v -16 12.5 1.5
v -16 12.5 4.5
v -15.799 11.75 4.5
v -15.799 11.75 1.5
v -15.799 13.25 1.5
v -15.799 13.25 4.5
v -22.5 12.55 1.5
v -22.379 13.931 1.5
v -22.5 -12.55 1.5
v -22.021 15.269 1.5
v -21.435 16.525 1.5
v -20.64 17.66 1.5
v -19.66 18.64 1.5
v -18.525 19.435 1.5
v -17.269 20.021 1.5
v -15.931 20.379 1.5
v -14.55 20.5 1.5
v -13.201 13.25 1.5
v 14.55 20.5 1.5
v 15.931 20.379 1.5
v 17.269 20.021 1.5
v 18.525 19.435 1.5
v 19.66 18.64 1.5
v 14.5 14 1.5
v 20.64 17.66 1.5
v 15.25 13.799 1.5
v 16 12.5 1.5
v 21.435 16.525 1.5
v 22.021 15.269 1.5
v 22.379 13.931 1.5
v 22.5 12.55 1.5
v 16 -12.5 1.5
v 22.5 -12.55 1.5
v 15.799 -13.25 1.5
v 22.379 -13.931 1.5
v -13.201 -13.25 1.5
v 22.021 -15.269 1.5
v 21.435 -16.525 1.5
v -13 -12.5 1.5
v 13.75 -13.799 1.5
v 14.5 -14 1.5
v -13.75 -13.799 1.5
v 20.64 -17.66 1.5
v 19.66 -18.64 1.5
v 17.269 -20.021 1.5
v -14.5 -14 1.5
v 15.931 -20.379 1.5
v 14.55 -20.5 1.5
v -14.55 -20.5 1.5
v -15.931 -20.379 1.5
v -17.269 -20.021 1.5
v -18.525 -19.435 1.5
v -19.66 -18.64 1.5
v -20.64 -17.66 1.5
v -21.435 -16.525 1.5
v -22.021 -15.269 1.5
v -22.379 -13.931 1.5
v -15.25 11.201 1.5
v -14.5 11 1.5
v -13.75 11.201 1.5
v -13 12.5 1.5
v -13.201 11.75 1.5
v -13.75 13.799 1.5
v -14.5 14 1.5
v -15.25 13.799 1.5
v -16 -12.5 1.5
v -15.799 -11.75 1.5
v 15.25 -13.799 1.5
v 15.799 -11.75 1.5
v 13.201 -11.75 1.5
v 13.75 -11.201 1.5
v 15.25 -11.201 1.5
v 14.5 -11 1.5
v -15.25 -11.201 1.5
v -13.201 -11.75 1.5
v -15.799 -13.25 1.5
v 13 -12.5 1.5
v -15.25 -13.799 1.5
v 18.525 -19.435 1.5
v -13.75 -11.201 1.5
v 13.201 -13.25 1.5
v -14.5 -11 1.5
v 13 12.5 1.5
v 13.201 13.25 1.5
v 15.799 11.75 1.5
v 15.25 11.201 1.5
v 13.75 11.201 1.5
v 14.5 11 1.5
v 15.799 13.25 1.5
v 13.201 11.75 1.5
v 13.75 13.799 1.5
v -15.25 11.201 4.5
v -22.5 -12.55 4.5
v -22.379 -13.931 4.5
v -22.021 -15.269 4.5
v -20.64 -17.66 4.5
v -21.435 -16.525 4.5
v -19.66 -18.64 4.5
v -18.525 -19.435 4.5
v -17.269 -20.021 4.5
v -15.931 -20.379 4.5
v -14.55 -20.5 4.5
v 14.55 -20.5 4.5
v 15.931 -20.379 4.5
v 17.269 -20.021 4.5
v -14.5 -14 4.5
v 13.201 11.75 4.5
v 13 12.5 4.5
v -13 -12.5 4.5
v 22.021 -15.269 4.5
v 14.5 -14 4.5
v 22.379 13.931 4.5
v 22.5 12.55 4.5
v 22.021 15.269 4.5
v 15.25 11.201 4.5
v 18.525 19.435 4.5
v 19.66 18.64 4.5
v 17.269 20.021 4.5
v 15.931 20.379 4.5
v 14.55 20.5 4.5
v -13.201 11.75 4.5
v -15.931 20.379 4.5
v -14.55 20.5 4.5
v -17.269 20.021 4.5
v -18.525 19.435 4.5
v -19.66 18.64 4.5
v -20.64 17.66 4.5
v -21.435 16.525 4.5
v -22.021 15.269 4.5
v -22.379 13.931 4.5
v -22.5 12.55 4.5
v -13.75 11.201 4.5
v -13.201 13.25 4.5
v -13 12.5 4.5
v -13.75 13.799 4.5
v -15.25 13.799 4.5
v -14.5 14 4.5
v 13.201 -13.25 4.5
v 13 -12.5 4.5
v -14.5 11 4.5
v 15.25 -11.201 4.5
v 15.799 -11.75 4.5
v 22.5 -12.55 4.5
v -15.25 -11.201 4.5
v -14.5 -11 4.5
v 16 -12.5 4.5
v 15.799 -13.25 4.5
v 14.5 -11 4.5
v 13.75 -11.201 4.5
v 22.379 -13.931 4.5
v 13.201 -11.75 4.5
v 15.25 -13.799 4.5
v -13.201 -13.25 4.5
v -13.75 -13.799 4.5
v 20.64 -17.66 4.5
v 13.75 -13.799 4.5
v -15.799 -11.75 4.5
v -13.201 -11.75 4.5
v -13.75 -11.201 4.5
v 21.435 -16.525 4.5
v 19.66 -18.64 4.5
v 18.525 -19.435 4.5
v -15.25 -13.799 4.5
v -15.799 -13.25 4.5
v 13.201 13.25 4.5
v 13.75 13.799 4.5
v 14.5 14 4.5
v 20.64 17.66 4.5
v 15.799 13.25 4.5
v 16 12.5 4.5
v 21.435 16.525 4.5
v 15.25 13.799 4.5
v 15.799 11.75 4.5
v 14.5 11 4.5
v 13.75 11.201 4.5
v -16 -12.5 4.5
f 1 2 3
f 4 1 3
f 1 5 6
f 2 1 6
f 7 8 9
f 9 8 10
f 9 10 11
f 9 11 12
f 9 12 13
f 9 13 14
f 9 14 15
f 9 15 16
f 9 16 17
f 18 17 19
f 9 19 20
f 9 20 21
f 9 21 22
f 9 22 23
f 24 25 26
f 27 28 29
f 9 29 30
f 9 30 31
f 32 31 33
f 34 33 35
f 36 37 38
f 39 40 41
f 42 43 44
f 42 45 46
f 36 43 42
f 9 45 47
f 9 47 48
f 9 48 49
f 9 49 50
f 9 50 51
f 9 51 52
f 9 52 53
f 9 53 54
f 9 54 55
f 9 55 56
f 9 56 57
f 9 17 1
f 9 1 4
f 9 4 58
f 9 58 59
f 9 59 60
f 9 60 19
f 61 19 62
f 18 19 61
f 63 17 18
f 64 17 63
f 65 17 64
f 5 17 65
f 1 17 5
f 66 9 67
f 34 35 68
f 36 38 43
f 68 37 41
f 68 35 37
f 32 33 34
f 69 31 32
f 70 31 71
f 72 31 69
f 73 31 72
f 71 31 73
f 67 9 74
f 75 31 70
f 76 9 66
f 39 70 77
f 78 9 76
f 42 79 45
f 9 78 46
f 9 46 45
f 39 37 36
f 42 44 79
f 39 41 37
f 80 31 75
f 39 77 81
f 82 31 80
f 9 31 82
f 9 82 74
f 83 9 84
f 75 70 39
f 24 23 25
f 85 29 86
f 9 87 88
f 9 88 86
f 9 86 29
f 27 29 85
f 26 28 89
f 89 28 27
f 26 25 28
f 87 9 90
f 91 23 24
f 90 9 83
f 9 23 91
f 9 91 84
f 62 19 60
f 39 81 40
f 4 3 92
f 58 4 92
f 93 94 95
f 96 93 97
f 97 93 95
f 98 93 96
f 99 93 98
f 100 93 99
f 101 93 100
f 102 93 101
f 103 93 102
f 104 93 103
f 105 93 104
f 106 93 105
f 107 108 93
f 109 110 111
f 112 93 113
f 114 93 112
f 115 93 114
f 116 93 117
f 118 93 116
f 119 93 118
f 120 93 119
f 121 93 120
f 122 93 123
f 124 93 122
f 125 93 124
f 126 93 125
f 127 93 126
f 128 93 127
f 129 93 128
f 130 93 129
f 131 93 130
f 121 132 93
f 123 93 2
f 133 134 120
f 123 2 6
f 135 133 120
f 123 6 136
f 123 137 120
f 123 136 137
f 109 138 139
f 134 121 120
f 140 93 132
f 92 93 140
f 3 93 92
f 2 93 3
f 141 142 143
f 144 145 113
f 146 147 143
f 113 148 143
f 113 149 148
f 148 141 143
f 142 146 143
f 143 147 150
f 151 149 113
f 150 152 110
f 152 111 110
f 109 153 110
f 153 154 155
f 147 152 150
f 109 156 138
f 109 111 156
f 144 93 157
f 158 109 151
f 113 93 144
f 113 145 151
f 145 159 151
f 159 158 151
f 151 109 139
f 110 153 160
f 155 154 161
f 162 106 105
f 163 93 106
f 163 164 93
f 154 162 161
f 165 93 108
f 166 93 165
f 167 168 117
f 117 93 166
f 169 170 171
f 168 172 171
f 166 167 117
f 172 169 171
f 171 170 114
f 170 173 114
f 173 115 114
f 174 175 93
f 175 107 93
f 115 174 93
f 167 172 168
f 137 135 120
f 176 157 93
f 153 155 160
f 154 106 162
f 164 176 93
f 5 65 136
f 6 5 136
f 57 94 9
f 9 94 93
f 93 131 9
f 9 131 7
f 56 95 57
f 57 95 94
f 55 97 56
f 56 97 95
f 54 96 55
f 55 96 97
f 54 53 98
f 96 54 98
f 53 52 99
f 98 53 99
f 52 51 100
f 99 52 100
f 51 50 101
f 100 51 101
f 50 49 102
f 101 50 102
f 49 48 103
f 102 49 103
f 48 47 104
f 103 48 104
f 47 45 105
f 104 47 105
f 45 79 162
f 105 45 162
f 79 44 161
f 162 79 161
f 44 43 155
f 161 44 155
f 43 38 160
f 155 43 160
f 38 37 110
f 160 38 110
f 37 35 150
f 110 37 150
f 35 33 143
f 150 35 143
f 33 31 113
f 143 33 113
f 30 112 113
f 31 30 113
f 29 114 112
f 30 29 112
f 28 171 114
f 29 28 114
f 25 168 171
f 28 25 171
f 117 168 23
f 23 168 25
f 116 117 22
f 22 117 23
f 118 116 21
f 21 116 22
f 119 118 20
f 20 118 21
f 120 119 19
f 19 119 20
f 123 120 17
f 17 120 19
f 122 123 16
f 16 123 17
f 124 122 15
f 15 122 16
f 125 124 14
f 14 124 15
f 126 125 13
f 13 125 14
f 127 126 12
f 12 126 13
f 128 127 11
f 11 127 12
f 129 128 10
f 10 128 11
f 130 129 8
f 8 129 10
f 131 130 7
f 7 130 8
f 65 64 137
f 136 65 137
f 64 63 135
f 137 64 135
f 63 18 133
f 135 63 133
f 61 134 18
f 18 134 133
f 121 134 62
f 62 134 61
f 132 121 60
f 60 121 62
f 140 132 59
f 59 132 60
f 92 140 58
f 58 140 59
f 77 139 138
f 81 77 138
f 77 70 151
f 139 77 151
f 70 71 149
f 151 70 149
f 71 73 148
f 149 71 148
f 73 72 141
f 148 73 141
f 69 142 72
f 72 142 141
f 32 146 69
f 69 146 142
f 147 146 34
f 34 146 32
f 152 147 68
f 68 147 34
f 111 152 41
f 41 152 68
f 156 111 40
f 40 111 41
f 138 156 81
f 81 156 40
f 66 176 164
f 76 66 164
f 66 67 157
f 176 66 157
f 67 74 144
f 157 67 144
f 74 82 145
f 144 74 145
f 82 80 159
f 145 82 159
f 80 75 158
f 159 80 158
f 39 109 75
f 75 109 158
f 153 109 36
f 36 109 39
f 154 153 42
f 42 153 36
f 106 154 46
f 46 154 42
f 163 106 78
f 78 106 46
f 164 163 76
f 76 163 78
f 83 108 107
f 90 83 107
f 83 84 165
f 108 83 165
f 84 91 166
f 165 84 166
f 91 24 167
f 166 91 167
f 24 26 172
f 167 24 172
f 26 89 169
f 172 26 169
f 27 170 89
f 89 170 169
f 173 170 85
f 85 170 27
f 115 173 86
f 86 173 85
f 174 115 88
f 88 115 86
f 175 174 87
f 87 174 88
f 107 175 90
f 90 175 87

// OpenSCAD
thickness = 3;
outside_radius = 8;
separation = 29;
spacing = 25;

module plate(h) {
  linear_extrude(height=h) difference() {
    minkowski() {
      square([0.1+separation, 0.1+spacing], center=true);
      circle(r=outside_radius-0.05, $fn=36);
    }
    for (x = [-separation/2, separation/2]) {
      for (y = [-spacing/2, spacing/2]) {
        translate([x, y])
          circle(r=1.5, $fn=12);
      }
    }
  }
}

translate([0, 0, thickness/2])
  plate(thickness);
